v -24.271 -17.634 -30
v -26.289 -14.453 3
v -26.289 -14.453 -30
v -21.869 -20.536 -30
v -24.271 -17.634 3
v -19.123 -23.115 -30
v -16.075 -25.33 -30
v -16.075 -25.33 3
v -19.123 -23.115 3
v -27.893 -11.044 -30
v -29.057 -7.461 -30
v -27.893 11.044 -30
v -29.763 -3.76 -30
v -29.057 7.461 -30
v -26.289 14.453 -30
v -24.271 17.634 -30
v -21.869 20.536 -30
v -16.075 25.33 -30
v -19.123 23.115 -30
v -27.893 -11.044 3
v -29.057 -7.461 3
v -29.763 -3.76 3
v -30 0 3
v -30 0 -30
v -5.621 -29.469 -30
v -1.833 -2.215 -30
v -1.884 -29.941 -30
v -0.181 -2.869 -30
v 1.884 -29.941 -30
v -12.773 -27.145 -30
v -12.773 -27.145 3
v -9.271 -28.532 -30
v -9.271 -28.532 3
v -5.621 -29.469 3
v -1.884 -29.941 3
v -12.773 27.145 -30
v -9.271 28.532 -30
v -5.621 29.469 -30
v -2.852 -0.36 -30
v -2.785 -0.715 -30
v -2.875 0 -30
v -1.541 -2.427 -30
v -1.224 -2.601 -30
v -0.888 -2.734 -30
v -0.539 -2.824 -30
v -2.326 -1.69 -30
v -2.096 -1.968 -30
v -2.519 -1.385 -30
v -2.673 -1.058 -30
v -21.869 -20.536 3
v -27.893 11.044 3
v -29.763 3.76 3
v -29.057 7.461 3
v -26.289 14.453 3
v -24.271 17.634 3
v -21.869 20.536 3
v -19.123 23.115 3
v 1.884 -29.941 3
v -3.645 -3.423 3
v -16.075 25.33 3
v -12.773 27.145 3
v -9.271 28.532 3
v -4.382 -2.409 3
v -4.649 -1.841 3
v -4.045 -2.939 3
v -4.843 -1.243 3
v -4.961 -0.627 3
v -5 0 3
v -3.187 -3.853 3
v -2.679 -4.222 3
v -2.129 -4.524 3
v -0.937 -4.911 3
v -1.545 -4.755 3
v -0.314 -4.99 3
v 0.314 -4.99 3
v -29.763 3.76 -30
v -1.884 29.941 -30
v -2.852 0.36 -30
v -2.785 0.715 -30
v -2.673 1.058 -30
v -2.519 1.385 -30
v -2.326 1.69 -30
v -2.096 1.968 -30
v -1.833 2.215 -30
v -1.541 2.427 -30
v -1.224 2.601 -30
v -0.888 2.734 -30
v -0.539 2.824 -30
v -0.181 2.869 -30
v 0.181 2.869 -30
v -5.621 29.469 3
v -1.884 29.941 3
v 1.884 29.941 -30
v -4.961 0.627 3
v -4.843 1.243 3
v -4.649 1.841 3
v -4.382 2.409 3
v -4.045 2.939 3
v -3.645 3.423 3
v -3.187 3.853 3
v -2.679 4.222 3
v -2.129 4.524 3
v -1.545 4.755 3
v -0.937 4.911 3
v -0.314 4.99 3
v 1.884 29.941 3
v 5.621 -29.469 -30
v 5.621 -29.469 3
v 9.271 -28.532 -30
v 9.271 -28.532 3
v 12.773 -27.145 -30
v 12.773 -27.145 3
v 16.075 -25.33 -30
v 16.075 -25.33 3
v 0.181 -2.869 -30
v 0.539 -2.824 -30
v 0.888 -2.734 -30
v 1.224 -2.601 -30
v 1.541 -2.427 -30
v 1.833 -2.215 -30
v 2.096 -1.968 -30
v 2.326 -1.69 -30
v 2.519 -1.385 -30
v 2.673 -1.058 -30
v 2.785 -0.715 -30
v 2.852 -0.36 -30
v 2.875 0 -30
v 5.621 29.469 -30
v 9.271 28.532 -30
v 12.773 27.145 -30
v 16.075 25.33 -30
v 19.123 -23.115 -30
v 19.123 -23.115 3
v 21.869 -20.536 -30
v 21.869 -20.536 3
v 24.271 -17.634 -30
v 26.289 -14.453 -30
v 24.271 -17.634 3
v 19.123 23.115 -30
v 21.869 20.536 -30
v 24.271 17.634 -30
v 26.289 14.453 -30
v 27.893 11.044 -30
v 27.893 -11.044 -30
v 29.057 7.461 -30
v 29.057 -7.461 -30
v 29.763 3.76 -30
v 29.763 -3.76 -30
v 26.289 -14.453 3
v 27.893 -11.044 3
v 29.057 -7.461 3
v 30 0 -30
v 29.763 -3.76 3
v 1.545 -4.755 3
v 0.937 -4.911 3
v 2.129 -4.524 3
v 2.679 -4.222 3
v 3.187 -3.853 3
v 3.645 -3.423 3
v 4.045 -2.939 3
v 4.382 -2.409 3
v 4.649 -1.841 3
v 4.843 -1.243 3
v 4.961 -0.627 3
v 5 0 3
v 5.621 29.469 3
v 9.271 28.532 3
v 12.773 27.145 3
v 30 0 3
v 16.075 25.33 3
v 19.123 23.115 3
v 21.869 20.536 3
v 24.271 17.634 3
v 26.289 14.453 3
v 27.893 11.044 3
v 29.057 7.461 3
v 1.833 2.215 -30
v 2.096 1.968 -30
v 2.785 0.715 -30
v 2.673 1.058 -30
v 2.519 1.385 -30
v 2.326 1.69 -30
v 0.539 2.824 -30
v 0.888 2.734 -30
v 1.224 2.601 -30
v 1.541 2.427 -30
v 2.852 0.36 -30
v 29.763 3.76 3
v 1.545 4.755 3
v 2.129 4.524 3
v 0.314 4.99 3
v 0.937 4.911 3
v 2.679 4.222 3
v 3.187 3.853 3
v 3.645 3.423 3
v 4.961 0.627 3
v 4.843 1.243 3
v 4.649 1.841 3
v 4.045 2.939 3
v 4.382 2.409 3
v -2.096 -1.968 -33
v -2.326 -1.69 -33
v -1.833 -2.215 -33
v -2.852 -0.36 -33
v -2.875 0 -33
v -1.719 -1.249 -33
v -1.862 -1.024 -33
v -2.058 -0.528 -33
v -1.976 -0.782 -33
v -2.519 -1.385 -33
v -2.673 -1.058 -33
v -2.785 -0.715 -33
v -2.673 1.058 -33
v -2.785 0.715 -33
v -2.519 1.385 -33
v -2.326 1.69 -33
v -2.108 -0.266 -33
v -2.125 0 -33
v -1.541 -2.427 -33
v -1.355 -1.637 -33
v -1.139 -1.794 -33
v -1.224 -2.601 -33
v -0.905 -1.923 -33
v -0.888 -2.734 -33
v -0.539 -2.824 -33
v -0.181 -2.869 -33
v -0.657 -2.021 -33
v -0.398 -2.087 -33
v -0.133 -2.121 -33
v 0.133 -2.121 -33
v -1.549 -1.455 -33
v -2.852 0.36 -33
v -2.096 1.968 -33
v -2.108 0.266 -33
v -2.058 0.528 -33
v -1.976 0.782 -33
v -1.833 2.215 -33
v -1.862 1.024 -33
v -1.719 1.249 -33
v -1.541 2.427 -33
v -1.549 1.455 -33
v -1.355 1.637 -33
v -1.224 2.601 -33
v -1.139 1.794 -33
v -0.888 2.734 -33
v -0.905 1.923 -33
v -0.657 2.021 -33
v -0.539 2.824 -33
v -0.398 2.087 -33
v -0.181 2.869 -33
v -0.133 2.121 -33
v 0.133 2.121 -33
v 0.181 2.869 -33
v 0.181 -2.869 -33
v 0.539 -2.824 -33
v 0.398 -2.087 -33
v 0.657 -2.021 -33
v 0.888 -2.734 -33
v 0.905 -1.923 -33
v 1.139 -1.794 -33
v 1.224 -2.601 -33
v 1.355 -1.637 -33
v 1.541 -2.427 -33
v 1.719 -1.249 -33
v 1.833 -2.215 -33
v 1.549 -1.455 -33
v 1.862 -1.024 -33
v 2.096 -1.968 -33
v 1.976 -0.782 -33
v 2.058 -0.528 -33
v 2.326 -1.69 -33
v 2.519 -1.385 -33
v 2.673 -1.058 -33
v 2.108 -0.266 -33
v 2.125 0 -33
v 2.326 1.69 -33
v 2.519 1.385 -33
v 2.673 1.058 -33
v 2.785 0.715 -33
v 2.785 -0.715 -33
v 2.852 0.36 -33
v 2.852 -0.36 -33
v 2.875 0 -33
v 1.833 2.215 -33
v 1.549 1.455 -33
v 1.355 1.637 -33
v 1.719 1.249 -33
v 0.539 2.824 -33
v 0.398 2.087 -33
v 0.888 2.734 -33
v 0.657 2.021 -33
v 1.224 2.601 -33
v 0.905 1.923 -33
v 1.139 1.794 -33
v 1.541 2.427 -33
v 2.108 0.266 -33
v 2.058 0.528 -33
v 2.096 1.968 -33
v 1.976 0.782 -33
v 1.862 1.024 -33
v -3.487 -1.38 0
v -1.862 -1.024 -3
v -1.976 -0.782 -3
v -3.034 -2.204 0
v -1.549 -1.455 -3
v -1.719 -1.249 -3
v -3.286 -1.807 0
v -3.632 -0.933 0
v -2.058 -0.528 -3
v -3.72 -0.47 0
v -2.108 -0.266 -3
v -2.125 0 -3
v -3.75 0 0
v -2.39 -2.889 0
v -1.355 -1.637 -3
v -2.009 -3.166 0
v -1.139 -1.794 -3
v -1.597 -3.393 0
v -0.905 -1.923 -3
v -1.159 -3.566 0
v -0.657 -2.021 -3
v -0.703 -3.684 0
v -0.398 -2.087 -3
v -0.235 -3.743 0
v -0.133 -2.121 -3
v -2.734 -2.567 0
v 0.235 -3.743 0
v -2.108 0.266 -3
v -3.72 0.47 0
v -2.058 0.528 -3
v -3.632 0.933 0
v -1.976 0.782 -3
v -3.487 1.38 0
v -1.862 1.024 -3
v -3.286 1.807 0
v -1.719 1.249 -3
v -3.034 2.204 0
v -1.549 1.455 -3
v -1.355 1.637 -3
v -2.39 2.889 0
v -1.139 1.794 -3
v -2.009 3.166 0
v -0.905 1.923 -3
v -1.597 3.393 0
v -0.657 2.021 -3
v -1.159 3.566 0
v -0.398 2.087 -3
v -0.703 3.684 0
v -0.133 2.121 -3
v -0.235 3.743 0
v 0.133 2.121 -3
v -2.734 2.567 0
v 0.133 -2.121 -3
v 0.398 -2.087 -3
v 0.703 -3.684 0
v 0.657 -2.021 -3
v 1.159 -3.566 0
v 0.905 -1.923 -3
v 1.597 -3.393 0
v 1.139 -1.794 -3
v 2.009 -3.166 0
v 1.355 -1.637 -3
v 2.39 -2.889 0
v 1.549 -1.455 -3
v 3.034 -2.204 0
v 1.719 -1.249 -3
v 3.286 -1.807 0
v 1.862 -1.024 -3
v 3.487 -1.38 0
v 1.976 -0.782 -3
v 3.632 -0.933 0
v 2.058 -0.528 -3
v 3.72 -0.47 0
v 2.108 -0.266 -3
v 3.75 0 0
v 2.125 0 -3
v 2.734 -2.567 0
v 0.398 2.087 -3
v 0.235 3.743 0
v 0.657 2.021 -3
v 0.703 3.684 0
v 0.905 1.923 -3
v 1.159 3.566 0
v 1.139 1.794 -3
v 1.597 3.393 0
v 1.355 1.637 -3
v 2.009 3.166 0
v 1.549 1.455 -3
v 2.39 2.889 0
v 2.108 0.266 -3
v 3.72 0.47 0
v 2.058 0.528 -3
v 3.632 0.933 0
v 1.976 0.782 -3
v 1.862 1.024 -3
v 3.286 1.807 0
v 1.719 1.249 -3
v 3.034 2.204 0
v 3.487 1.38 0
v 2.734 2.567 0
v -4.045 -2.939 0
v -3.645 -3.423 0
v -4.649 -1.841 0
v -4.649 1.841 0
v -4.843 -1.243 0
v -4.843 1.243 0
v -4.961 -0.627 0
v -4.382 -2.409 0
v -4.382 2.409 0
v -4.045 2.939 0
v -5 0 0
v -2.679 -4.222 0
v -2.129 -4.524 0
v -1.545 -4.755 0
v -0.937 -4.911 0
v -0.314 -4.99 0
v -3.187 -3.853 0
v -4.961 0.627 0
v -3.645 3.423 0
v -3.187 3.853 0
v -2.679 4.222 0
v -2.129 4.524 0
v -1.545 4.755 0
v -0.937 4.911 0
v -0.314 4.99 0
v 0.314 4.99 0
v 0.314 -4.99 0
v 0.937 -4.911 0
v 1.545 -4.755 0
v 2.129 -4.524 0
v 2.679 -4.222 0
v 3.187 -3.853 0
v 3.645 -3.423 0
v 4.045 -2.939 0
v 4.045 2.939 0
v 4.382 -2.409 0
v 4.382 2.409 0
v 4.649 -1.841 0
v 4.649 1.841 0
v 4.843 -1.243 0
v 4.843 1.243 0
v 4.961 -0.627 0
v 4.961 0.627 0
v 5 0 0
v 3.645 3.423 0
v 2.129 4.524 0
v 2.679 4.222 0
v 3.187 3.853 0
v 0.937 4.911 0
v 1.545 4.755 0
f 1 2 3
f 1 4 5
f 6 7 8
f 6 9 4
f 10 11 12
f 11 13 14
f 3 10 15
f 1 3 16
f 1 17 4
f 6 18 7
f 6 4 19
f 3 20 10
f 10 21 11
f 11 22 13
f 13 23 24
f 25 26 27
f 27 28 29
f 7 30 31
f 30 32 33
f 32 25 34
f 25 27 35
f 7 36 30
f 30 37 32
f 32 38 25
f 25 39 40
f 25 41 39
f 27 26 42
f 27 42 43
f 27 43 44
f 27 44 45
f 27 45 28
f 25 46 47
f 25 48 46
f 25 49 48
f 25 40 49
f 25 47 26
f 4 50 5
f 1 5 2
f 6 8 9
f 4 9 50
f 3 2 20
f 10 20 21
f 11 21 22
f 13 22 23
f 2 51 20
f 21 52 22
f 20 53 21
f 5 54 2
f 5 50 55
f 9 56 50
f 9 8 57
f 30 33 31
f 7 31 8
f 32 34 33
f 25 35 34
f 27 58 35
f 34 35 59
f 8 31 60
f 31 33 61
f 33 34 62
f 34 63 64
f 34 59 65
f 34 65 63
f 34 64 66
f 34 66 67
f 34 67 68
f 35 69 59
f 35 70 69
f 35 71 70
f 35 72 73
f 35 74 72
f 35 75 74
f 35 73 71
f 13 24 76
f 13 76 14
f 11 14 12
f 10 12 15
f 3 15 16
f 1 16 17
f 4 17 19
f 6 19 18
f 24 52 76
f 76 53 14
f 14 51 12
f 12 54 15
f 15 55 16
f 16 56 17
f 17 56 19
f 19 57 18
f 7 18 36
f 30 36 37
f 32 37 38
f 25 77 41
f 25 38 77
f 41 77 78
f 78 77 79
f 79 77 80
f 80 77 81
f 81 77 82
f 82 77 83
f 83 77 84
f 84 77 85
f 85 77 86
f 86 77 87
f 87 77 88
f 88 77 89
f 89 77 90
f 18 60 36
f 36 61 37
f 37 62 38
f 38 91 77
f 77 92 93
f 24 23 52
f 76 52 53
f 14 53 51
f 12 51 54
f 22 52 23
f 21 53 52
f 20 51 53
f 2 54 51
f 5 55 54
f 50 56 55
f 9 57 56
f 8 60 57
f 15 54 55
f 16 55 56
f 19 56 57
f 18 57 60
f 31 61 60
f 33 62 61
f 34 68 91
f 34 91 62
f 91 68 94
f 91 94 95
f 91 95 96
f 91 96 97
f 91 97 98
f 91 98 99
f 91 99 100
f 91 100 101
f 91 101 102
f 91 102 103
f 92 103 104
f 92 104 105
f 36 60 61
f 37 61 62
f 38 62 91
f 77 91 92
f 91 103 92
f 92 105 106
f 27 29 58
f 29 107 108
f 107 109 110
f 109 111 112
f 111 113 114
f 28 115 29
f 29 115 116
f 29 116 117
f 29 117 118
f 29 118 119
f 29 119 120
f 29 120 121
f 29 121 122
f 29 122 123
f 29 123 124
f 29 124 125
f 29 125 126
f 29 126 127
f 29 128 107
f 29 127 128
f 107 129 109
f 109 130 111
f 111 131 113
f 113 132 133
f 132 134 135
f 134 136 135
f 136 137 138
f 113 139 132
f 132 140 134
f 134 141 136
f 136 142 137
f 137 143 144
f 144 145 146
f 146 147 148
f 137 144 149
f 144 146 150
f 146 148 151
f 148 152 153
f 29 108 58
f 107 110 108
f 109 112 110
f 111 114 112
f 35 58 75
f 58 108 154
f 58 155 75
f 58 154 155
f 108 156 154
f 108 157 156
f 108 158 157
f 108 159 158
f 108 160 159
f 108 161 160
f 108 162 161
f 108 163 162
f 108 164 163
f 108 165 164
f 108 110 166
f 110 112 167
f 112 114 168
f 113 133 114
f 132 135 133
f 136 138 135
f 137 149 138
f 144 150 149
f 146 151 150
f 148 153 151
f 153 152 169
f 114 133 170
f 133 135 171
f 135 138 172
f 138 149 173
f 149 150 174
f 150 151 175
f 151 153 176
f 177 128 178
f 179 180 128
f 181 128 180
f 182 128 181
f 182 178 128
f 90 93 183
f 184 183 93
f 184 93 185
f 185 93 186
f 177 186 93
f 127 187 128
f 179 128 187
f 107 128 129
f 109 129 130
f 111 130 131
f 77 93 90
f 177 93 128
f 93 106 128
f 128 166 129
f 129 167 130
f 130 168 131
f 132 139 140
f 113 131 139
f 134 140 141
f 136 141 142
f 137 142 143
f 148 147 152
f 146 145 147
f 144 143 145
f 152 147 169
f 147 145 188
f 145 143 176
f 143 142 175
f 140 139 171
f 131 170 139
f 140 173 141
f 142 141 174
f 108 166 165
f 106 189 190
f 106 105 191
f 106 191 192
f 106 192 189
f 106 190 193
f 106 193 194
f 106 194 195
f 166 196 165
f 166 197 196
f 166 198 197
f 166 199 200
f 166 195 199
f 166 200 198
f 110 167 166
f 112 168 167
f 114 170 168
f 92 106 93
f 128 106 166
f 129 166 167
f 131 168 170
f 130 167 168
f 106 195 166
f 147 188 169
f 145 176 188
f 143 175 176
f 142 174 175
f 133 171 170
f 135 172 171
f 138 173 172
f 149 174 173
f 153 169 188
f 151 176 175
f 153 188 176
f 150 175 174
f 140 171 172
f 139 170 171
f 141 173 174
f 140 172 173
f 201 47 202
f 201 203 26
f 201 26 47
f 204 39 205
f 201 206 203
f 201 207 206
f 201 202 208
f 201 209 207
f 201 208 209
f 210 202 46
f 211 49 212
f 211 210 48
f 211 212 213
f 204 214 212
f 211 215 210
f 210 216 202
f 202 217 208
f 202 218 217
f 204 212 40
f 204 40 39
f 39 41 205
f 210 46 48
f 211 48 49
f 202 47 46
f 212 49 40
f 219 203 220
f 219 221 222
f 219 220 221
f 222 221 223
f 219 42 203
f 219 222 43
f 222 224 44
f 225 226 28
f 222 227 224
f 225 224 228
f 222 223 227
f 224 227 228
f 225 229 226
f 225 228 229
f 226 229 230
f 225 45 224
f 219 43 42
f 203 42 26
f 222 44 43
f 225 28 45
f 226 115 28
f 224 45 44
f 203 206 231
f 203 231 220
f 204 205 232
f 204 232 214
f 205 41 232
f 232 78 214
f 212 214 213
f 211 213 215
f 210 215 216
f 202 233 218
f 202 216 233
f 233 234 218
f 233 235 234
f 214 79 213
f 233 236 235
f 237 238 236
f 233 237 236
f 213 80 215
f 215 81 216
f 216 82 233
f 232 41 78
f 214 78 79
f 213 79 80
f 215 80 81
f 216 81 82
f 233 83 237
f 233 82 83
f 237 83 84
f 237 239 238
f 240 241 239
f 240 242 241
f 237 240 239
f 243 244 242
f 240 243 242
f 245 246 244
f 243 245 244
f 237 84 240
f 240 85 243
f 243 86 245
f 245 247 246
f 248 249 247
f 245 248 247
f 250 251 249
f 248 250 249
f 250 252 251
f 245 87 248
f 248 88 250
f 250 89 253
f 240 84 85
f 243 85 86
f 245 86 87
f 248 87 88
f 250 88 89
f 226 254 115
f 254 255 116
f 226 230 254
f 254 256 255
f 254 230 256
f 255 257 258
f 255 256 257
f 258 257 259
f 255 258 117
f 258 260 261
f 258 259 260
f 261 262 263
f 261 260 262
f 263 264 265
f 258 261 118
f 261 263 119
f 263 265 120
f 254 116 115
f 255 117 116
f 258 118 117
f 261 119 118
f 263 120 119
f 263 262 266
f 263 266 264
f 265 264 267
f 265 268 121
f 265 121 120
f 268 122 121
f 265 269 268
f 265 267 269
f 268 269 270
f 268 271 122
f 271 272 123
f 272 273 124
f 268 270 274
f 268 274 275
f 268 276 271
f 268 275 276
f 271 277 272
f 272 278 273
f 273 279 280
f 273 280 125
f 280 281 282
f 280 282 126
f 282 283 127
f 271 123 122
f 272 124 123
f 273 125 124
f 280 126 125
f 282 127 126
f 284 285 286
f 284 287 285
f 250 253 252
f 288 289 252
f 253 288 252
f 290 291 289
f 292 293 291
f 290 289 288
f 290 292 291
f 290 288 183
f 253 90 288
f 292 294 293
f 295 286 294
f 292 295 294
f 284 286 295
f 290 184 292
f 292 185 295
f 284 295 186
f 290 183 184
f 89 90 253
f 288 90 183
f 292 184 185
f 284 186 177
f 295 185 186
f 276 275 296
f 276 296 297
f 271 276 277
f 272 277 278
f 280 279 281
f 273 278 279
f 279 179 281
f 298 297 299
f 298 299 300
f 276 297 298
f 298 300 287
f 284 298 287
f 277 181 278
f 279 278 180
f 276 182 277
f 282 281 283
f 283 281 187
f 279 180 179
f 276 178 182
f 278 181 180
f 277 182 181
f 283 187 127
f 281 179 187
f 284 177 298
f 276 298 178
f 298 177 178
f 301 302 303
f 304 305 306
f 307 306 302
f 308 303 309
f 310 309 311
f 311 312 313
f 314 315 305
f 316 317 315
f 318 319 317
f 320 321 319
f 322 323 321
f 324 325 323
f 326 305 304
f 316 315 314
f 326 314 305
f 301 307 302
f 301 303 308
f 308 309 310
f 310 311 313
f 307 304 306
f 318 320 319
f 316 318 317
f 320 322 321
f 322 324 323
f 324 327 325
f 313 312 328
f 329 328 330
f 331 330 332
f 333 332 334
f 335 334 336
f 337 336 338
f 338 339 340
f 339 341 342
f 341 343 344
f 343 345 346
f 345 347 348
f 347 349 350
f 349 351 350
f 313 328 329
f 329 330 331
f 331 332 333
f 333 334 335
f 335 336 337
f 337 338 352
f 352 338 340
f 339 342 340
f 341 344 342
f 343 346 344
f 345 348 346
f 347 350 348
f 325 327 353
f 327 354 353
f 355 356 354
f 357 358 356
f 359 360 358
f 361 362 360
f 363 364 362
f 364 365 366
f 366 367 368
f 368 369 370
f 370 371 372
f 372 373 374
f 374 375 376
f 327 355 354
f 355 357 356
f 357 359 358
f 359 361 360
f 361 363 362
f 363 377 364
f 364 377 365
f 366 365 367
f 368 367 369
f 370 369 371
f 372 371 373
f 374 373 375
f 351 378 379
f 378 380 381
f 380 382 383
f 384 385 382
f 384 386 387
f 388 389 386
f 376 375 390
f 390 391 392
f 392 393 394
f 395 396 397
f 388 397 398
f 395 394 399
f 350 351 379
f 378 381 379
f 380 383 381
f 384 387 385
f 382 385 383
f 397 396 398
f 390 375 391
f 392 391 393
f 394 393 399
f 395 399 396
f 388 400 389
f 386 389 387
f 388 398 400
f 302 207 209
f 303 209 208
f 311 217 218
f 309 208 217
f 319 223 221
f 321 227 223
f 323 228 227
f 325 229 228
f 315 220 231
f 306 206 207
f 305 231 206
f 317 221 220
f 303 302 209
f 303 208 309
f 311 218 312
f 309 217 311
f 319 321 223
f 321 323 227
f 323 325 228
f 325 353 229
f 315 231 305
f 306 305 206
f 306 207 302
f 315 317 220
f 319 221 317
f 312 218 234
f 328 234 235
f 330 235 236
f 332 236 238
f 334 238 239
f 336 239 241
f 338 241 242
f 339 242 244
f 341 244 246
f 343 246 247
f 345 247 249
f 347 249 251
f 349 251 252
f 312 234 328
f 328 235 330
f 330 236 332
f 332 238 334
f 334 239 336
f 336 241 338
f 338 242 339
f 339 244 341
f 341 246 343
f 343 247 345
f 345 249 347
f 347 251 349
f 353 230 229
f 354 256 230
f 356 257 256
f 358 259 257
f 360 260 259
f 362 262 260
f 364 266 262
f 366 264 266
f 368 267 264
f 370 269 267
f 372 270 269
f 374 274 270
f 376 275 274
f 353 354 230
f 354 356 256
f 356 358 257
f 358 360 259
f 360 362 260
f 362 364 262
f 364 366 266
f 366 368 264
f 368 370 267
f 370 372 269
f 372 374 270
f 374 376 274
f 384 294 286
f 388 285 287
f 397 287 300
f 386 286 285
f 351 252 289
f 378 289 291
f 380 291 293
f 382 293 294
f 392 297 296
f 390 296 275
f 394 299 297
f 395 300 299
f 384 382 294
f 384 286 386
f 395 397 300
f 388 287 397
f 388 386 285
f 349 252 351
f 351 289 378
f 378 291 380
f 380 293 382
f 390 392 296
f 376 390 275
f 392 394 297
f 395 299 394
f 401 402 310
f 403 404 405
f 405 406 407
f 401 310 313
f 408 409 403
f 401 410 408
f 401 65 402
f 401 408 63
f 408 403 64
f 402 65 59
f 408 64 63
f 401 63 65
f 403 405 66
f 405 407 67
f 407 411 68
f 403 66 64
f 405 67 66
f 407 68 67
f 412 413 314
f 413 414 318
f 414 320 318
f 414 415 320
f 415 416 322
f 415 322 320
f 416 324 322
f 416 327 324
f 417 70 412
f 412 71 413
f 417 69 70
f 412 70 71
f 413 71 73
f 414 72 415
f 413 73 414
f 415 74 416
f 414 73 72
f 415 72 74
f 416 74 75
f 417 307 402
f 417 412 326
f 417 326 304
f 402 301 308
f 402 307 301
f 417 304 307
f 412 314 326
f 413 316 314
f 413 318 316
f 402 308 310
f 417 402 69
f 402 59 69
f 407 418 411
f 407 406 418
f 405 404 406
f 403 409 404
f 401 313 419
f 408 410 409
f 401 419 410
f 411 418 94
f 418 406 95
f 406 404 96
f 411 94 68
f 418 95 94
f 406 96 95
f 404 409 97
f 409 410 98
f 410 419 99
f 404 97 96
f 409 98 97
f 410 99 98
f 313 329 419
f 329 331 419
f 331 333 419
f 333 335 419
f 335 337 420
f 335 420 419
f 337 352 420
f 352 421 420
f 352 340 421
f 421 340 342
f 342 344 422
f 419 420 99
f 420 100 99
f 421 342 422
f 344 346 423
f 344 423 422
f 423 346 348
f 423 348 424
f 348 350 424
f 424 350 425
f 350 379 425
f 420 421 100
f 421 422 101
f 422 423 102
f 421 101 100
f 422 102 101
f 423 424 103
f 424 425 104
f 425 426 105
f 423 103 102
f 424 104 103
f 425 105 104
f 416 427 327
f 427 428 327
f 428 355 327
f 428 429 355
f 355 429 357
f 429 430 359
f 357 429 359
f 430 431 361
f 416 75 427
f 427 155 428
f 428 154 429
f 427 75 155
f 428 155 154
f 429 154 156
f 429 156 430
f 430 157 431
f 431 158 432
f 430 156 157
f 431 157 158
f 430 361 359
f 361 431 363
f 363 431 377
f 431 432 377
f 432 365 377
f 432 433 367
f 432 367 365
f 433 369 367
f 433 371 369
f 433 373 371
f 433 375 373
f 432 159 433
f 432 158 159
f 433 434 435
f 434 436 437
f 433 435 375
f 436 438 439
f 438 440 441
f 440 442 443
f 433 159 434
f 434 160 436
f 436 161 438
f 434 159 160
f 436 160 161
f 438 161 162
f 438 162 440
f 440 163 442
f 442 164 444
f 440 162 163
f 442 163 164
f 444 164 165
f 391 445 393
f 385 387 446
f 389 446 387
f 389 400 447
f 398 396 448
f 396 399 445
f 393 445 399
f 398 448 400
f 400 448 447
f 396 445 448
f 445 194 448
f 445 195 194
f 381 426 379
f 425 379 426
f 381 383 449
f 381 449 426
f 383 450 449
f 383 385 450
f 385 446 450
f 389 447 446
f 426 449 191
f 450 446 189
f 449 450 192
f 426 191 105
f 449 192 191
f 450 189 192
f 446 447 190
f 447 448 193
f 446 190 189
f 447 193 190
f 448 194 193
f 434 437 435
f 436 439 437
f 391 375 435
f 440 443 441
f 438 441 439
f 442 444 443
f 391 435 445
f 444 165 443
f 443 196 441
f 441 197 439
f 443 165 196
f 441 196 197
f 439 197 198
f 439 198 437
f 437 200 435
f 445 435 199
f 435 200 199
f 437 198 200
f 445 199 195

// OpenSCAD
$fn = 50;

difference() {
	union() {
		translate(v = [0, 0, -30.0]) {
			cylinder(h = 33, r = 30.0);
		}
		#translate(v = [0, 0, -33.0]) {
			cylinder(h = 33, r = 2.875);
		}
	}
	union() {
		translate(v = [0, 0, 0]) {
			rotate(a = [0, 0, 0]) {
				difference() {
					union() {
						translate(v = [0, 0, -33.0]) {
							cylinder(h = 33, r = 2.0);
						}
						translate(v = [0, 0, -3]) {
							cylinder(h = 3, r1 = 2.125, r2 = 3.75);
						}
						translate(v = [0, 0, -33.0]) {
							cylinder(h = 33, r = 2.125);
						}
						translate(v = [0, 0, -33.0]) {
							cylinder(h = 33, r = 2.0);
						}
					}
					union();
				}
			}
		}
		#cylinder(h = 3, r = 5.0);
	}
}
